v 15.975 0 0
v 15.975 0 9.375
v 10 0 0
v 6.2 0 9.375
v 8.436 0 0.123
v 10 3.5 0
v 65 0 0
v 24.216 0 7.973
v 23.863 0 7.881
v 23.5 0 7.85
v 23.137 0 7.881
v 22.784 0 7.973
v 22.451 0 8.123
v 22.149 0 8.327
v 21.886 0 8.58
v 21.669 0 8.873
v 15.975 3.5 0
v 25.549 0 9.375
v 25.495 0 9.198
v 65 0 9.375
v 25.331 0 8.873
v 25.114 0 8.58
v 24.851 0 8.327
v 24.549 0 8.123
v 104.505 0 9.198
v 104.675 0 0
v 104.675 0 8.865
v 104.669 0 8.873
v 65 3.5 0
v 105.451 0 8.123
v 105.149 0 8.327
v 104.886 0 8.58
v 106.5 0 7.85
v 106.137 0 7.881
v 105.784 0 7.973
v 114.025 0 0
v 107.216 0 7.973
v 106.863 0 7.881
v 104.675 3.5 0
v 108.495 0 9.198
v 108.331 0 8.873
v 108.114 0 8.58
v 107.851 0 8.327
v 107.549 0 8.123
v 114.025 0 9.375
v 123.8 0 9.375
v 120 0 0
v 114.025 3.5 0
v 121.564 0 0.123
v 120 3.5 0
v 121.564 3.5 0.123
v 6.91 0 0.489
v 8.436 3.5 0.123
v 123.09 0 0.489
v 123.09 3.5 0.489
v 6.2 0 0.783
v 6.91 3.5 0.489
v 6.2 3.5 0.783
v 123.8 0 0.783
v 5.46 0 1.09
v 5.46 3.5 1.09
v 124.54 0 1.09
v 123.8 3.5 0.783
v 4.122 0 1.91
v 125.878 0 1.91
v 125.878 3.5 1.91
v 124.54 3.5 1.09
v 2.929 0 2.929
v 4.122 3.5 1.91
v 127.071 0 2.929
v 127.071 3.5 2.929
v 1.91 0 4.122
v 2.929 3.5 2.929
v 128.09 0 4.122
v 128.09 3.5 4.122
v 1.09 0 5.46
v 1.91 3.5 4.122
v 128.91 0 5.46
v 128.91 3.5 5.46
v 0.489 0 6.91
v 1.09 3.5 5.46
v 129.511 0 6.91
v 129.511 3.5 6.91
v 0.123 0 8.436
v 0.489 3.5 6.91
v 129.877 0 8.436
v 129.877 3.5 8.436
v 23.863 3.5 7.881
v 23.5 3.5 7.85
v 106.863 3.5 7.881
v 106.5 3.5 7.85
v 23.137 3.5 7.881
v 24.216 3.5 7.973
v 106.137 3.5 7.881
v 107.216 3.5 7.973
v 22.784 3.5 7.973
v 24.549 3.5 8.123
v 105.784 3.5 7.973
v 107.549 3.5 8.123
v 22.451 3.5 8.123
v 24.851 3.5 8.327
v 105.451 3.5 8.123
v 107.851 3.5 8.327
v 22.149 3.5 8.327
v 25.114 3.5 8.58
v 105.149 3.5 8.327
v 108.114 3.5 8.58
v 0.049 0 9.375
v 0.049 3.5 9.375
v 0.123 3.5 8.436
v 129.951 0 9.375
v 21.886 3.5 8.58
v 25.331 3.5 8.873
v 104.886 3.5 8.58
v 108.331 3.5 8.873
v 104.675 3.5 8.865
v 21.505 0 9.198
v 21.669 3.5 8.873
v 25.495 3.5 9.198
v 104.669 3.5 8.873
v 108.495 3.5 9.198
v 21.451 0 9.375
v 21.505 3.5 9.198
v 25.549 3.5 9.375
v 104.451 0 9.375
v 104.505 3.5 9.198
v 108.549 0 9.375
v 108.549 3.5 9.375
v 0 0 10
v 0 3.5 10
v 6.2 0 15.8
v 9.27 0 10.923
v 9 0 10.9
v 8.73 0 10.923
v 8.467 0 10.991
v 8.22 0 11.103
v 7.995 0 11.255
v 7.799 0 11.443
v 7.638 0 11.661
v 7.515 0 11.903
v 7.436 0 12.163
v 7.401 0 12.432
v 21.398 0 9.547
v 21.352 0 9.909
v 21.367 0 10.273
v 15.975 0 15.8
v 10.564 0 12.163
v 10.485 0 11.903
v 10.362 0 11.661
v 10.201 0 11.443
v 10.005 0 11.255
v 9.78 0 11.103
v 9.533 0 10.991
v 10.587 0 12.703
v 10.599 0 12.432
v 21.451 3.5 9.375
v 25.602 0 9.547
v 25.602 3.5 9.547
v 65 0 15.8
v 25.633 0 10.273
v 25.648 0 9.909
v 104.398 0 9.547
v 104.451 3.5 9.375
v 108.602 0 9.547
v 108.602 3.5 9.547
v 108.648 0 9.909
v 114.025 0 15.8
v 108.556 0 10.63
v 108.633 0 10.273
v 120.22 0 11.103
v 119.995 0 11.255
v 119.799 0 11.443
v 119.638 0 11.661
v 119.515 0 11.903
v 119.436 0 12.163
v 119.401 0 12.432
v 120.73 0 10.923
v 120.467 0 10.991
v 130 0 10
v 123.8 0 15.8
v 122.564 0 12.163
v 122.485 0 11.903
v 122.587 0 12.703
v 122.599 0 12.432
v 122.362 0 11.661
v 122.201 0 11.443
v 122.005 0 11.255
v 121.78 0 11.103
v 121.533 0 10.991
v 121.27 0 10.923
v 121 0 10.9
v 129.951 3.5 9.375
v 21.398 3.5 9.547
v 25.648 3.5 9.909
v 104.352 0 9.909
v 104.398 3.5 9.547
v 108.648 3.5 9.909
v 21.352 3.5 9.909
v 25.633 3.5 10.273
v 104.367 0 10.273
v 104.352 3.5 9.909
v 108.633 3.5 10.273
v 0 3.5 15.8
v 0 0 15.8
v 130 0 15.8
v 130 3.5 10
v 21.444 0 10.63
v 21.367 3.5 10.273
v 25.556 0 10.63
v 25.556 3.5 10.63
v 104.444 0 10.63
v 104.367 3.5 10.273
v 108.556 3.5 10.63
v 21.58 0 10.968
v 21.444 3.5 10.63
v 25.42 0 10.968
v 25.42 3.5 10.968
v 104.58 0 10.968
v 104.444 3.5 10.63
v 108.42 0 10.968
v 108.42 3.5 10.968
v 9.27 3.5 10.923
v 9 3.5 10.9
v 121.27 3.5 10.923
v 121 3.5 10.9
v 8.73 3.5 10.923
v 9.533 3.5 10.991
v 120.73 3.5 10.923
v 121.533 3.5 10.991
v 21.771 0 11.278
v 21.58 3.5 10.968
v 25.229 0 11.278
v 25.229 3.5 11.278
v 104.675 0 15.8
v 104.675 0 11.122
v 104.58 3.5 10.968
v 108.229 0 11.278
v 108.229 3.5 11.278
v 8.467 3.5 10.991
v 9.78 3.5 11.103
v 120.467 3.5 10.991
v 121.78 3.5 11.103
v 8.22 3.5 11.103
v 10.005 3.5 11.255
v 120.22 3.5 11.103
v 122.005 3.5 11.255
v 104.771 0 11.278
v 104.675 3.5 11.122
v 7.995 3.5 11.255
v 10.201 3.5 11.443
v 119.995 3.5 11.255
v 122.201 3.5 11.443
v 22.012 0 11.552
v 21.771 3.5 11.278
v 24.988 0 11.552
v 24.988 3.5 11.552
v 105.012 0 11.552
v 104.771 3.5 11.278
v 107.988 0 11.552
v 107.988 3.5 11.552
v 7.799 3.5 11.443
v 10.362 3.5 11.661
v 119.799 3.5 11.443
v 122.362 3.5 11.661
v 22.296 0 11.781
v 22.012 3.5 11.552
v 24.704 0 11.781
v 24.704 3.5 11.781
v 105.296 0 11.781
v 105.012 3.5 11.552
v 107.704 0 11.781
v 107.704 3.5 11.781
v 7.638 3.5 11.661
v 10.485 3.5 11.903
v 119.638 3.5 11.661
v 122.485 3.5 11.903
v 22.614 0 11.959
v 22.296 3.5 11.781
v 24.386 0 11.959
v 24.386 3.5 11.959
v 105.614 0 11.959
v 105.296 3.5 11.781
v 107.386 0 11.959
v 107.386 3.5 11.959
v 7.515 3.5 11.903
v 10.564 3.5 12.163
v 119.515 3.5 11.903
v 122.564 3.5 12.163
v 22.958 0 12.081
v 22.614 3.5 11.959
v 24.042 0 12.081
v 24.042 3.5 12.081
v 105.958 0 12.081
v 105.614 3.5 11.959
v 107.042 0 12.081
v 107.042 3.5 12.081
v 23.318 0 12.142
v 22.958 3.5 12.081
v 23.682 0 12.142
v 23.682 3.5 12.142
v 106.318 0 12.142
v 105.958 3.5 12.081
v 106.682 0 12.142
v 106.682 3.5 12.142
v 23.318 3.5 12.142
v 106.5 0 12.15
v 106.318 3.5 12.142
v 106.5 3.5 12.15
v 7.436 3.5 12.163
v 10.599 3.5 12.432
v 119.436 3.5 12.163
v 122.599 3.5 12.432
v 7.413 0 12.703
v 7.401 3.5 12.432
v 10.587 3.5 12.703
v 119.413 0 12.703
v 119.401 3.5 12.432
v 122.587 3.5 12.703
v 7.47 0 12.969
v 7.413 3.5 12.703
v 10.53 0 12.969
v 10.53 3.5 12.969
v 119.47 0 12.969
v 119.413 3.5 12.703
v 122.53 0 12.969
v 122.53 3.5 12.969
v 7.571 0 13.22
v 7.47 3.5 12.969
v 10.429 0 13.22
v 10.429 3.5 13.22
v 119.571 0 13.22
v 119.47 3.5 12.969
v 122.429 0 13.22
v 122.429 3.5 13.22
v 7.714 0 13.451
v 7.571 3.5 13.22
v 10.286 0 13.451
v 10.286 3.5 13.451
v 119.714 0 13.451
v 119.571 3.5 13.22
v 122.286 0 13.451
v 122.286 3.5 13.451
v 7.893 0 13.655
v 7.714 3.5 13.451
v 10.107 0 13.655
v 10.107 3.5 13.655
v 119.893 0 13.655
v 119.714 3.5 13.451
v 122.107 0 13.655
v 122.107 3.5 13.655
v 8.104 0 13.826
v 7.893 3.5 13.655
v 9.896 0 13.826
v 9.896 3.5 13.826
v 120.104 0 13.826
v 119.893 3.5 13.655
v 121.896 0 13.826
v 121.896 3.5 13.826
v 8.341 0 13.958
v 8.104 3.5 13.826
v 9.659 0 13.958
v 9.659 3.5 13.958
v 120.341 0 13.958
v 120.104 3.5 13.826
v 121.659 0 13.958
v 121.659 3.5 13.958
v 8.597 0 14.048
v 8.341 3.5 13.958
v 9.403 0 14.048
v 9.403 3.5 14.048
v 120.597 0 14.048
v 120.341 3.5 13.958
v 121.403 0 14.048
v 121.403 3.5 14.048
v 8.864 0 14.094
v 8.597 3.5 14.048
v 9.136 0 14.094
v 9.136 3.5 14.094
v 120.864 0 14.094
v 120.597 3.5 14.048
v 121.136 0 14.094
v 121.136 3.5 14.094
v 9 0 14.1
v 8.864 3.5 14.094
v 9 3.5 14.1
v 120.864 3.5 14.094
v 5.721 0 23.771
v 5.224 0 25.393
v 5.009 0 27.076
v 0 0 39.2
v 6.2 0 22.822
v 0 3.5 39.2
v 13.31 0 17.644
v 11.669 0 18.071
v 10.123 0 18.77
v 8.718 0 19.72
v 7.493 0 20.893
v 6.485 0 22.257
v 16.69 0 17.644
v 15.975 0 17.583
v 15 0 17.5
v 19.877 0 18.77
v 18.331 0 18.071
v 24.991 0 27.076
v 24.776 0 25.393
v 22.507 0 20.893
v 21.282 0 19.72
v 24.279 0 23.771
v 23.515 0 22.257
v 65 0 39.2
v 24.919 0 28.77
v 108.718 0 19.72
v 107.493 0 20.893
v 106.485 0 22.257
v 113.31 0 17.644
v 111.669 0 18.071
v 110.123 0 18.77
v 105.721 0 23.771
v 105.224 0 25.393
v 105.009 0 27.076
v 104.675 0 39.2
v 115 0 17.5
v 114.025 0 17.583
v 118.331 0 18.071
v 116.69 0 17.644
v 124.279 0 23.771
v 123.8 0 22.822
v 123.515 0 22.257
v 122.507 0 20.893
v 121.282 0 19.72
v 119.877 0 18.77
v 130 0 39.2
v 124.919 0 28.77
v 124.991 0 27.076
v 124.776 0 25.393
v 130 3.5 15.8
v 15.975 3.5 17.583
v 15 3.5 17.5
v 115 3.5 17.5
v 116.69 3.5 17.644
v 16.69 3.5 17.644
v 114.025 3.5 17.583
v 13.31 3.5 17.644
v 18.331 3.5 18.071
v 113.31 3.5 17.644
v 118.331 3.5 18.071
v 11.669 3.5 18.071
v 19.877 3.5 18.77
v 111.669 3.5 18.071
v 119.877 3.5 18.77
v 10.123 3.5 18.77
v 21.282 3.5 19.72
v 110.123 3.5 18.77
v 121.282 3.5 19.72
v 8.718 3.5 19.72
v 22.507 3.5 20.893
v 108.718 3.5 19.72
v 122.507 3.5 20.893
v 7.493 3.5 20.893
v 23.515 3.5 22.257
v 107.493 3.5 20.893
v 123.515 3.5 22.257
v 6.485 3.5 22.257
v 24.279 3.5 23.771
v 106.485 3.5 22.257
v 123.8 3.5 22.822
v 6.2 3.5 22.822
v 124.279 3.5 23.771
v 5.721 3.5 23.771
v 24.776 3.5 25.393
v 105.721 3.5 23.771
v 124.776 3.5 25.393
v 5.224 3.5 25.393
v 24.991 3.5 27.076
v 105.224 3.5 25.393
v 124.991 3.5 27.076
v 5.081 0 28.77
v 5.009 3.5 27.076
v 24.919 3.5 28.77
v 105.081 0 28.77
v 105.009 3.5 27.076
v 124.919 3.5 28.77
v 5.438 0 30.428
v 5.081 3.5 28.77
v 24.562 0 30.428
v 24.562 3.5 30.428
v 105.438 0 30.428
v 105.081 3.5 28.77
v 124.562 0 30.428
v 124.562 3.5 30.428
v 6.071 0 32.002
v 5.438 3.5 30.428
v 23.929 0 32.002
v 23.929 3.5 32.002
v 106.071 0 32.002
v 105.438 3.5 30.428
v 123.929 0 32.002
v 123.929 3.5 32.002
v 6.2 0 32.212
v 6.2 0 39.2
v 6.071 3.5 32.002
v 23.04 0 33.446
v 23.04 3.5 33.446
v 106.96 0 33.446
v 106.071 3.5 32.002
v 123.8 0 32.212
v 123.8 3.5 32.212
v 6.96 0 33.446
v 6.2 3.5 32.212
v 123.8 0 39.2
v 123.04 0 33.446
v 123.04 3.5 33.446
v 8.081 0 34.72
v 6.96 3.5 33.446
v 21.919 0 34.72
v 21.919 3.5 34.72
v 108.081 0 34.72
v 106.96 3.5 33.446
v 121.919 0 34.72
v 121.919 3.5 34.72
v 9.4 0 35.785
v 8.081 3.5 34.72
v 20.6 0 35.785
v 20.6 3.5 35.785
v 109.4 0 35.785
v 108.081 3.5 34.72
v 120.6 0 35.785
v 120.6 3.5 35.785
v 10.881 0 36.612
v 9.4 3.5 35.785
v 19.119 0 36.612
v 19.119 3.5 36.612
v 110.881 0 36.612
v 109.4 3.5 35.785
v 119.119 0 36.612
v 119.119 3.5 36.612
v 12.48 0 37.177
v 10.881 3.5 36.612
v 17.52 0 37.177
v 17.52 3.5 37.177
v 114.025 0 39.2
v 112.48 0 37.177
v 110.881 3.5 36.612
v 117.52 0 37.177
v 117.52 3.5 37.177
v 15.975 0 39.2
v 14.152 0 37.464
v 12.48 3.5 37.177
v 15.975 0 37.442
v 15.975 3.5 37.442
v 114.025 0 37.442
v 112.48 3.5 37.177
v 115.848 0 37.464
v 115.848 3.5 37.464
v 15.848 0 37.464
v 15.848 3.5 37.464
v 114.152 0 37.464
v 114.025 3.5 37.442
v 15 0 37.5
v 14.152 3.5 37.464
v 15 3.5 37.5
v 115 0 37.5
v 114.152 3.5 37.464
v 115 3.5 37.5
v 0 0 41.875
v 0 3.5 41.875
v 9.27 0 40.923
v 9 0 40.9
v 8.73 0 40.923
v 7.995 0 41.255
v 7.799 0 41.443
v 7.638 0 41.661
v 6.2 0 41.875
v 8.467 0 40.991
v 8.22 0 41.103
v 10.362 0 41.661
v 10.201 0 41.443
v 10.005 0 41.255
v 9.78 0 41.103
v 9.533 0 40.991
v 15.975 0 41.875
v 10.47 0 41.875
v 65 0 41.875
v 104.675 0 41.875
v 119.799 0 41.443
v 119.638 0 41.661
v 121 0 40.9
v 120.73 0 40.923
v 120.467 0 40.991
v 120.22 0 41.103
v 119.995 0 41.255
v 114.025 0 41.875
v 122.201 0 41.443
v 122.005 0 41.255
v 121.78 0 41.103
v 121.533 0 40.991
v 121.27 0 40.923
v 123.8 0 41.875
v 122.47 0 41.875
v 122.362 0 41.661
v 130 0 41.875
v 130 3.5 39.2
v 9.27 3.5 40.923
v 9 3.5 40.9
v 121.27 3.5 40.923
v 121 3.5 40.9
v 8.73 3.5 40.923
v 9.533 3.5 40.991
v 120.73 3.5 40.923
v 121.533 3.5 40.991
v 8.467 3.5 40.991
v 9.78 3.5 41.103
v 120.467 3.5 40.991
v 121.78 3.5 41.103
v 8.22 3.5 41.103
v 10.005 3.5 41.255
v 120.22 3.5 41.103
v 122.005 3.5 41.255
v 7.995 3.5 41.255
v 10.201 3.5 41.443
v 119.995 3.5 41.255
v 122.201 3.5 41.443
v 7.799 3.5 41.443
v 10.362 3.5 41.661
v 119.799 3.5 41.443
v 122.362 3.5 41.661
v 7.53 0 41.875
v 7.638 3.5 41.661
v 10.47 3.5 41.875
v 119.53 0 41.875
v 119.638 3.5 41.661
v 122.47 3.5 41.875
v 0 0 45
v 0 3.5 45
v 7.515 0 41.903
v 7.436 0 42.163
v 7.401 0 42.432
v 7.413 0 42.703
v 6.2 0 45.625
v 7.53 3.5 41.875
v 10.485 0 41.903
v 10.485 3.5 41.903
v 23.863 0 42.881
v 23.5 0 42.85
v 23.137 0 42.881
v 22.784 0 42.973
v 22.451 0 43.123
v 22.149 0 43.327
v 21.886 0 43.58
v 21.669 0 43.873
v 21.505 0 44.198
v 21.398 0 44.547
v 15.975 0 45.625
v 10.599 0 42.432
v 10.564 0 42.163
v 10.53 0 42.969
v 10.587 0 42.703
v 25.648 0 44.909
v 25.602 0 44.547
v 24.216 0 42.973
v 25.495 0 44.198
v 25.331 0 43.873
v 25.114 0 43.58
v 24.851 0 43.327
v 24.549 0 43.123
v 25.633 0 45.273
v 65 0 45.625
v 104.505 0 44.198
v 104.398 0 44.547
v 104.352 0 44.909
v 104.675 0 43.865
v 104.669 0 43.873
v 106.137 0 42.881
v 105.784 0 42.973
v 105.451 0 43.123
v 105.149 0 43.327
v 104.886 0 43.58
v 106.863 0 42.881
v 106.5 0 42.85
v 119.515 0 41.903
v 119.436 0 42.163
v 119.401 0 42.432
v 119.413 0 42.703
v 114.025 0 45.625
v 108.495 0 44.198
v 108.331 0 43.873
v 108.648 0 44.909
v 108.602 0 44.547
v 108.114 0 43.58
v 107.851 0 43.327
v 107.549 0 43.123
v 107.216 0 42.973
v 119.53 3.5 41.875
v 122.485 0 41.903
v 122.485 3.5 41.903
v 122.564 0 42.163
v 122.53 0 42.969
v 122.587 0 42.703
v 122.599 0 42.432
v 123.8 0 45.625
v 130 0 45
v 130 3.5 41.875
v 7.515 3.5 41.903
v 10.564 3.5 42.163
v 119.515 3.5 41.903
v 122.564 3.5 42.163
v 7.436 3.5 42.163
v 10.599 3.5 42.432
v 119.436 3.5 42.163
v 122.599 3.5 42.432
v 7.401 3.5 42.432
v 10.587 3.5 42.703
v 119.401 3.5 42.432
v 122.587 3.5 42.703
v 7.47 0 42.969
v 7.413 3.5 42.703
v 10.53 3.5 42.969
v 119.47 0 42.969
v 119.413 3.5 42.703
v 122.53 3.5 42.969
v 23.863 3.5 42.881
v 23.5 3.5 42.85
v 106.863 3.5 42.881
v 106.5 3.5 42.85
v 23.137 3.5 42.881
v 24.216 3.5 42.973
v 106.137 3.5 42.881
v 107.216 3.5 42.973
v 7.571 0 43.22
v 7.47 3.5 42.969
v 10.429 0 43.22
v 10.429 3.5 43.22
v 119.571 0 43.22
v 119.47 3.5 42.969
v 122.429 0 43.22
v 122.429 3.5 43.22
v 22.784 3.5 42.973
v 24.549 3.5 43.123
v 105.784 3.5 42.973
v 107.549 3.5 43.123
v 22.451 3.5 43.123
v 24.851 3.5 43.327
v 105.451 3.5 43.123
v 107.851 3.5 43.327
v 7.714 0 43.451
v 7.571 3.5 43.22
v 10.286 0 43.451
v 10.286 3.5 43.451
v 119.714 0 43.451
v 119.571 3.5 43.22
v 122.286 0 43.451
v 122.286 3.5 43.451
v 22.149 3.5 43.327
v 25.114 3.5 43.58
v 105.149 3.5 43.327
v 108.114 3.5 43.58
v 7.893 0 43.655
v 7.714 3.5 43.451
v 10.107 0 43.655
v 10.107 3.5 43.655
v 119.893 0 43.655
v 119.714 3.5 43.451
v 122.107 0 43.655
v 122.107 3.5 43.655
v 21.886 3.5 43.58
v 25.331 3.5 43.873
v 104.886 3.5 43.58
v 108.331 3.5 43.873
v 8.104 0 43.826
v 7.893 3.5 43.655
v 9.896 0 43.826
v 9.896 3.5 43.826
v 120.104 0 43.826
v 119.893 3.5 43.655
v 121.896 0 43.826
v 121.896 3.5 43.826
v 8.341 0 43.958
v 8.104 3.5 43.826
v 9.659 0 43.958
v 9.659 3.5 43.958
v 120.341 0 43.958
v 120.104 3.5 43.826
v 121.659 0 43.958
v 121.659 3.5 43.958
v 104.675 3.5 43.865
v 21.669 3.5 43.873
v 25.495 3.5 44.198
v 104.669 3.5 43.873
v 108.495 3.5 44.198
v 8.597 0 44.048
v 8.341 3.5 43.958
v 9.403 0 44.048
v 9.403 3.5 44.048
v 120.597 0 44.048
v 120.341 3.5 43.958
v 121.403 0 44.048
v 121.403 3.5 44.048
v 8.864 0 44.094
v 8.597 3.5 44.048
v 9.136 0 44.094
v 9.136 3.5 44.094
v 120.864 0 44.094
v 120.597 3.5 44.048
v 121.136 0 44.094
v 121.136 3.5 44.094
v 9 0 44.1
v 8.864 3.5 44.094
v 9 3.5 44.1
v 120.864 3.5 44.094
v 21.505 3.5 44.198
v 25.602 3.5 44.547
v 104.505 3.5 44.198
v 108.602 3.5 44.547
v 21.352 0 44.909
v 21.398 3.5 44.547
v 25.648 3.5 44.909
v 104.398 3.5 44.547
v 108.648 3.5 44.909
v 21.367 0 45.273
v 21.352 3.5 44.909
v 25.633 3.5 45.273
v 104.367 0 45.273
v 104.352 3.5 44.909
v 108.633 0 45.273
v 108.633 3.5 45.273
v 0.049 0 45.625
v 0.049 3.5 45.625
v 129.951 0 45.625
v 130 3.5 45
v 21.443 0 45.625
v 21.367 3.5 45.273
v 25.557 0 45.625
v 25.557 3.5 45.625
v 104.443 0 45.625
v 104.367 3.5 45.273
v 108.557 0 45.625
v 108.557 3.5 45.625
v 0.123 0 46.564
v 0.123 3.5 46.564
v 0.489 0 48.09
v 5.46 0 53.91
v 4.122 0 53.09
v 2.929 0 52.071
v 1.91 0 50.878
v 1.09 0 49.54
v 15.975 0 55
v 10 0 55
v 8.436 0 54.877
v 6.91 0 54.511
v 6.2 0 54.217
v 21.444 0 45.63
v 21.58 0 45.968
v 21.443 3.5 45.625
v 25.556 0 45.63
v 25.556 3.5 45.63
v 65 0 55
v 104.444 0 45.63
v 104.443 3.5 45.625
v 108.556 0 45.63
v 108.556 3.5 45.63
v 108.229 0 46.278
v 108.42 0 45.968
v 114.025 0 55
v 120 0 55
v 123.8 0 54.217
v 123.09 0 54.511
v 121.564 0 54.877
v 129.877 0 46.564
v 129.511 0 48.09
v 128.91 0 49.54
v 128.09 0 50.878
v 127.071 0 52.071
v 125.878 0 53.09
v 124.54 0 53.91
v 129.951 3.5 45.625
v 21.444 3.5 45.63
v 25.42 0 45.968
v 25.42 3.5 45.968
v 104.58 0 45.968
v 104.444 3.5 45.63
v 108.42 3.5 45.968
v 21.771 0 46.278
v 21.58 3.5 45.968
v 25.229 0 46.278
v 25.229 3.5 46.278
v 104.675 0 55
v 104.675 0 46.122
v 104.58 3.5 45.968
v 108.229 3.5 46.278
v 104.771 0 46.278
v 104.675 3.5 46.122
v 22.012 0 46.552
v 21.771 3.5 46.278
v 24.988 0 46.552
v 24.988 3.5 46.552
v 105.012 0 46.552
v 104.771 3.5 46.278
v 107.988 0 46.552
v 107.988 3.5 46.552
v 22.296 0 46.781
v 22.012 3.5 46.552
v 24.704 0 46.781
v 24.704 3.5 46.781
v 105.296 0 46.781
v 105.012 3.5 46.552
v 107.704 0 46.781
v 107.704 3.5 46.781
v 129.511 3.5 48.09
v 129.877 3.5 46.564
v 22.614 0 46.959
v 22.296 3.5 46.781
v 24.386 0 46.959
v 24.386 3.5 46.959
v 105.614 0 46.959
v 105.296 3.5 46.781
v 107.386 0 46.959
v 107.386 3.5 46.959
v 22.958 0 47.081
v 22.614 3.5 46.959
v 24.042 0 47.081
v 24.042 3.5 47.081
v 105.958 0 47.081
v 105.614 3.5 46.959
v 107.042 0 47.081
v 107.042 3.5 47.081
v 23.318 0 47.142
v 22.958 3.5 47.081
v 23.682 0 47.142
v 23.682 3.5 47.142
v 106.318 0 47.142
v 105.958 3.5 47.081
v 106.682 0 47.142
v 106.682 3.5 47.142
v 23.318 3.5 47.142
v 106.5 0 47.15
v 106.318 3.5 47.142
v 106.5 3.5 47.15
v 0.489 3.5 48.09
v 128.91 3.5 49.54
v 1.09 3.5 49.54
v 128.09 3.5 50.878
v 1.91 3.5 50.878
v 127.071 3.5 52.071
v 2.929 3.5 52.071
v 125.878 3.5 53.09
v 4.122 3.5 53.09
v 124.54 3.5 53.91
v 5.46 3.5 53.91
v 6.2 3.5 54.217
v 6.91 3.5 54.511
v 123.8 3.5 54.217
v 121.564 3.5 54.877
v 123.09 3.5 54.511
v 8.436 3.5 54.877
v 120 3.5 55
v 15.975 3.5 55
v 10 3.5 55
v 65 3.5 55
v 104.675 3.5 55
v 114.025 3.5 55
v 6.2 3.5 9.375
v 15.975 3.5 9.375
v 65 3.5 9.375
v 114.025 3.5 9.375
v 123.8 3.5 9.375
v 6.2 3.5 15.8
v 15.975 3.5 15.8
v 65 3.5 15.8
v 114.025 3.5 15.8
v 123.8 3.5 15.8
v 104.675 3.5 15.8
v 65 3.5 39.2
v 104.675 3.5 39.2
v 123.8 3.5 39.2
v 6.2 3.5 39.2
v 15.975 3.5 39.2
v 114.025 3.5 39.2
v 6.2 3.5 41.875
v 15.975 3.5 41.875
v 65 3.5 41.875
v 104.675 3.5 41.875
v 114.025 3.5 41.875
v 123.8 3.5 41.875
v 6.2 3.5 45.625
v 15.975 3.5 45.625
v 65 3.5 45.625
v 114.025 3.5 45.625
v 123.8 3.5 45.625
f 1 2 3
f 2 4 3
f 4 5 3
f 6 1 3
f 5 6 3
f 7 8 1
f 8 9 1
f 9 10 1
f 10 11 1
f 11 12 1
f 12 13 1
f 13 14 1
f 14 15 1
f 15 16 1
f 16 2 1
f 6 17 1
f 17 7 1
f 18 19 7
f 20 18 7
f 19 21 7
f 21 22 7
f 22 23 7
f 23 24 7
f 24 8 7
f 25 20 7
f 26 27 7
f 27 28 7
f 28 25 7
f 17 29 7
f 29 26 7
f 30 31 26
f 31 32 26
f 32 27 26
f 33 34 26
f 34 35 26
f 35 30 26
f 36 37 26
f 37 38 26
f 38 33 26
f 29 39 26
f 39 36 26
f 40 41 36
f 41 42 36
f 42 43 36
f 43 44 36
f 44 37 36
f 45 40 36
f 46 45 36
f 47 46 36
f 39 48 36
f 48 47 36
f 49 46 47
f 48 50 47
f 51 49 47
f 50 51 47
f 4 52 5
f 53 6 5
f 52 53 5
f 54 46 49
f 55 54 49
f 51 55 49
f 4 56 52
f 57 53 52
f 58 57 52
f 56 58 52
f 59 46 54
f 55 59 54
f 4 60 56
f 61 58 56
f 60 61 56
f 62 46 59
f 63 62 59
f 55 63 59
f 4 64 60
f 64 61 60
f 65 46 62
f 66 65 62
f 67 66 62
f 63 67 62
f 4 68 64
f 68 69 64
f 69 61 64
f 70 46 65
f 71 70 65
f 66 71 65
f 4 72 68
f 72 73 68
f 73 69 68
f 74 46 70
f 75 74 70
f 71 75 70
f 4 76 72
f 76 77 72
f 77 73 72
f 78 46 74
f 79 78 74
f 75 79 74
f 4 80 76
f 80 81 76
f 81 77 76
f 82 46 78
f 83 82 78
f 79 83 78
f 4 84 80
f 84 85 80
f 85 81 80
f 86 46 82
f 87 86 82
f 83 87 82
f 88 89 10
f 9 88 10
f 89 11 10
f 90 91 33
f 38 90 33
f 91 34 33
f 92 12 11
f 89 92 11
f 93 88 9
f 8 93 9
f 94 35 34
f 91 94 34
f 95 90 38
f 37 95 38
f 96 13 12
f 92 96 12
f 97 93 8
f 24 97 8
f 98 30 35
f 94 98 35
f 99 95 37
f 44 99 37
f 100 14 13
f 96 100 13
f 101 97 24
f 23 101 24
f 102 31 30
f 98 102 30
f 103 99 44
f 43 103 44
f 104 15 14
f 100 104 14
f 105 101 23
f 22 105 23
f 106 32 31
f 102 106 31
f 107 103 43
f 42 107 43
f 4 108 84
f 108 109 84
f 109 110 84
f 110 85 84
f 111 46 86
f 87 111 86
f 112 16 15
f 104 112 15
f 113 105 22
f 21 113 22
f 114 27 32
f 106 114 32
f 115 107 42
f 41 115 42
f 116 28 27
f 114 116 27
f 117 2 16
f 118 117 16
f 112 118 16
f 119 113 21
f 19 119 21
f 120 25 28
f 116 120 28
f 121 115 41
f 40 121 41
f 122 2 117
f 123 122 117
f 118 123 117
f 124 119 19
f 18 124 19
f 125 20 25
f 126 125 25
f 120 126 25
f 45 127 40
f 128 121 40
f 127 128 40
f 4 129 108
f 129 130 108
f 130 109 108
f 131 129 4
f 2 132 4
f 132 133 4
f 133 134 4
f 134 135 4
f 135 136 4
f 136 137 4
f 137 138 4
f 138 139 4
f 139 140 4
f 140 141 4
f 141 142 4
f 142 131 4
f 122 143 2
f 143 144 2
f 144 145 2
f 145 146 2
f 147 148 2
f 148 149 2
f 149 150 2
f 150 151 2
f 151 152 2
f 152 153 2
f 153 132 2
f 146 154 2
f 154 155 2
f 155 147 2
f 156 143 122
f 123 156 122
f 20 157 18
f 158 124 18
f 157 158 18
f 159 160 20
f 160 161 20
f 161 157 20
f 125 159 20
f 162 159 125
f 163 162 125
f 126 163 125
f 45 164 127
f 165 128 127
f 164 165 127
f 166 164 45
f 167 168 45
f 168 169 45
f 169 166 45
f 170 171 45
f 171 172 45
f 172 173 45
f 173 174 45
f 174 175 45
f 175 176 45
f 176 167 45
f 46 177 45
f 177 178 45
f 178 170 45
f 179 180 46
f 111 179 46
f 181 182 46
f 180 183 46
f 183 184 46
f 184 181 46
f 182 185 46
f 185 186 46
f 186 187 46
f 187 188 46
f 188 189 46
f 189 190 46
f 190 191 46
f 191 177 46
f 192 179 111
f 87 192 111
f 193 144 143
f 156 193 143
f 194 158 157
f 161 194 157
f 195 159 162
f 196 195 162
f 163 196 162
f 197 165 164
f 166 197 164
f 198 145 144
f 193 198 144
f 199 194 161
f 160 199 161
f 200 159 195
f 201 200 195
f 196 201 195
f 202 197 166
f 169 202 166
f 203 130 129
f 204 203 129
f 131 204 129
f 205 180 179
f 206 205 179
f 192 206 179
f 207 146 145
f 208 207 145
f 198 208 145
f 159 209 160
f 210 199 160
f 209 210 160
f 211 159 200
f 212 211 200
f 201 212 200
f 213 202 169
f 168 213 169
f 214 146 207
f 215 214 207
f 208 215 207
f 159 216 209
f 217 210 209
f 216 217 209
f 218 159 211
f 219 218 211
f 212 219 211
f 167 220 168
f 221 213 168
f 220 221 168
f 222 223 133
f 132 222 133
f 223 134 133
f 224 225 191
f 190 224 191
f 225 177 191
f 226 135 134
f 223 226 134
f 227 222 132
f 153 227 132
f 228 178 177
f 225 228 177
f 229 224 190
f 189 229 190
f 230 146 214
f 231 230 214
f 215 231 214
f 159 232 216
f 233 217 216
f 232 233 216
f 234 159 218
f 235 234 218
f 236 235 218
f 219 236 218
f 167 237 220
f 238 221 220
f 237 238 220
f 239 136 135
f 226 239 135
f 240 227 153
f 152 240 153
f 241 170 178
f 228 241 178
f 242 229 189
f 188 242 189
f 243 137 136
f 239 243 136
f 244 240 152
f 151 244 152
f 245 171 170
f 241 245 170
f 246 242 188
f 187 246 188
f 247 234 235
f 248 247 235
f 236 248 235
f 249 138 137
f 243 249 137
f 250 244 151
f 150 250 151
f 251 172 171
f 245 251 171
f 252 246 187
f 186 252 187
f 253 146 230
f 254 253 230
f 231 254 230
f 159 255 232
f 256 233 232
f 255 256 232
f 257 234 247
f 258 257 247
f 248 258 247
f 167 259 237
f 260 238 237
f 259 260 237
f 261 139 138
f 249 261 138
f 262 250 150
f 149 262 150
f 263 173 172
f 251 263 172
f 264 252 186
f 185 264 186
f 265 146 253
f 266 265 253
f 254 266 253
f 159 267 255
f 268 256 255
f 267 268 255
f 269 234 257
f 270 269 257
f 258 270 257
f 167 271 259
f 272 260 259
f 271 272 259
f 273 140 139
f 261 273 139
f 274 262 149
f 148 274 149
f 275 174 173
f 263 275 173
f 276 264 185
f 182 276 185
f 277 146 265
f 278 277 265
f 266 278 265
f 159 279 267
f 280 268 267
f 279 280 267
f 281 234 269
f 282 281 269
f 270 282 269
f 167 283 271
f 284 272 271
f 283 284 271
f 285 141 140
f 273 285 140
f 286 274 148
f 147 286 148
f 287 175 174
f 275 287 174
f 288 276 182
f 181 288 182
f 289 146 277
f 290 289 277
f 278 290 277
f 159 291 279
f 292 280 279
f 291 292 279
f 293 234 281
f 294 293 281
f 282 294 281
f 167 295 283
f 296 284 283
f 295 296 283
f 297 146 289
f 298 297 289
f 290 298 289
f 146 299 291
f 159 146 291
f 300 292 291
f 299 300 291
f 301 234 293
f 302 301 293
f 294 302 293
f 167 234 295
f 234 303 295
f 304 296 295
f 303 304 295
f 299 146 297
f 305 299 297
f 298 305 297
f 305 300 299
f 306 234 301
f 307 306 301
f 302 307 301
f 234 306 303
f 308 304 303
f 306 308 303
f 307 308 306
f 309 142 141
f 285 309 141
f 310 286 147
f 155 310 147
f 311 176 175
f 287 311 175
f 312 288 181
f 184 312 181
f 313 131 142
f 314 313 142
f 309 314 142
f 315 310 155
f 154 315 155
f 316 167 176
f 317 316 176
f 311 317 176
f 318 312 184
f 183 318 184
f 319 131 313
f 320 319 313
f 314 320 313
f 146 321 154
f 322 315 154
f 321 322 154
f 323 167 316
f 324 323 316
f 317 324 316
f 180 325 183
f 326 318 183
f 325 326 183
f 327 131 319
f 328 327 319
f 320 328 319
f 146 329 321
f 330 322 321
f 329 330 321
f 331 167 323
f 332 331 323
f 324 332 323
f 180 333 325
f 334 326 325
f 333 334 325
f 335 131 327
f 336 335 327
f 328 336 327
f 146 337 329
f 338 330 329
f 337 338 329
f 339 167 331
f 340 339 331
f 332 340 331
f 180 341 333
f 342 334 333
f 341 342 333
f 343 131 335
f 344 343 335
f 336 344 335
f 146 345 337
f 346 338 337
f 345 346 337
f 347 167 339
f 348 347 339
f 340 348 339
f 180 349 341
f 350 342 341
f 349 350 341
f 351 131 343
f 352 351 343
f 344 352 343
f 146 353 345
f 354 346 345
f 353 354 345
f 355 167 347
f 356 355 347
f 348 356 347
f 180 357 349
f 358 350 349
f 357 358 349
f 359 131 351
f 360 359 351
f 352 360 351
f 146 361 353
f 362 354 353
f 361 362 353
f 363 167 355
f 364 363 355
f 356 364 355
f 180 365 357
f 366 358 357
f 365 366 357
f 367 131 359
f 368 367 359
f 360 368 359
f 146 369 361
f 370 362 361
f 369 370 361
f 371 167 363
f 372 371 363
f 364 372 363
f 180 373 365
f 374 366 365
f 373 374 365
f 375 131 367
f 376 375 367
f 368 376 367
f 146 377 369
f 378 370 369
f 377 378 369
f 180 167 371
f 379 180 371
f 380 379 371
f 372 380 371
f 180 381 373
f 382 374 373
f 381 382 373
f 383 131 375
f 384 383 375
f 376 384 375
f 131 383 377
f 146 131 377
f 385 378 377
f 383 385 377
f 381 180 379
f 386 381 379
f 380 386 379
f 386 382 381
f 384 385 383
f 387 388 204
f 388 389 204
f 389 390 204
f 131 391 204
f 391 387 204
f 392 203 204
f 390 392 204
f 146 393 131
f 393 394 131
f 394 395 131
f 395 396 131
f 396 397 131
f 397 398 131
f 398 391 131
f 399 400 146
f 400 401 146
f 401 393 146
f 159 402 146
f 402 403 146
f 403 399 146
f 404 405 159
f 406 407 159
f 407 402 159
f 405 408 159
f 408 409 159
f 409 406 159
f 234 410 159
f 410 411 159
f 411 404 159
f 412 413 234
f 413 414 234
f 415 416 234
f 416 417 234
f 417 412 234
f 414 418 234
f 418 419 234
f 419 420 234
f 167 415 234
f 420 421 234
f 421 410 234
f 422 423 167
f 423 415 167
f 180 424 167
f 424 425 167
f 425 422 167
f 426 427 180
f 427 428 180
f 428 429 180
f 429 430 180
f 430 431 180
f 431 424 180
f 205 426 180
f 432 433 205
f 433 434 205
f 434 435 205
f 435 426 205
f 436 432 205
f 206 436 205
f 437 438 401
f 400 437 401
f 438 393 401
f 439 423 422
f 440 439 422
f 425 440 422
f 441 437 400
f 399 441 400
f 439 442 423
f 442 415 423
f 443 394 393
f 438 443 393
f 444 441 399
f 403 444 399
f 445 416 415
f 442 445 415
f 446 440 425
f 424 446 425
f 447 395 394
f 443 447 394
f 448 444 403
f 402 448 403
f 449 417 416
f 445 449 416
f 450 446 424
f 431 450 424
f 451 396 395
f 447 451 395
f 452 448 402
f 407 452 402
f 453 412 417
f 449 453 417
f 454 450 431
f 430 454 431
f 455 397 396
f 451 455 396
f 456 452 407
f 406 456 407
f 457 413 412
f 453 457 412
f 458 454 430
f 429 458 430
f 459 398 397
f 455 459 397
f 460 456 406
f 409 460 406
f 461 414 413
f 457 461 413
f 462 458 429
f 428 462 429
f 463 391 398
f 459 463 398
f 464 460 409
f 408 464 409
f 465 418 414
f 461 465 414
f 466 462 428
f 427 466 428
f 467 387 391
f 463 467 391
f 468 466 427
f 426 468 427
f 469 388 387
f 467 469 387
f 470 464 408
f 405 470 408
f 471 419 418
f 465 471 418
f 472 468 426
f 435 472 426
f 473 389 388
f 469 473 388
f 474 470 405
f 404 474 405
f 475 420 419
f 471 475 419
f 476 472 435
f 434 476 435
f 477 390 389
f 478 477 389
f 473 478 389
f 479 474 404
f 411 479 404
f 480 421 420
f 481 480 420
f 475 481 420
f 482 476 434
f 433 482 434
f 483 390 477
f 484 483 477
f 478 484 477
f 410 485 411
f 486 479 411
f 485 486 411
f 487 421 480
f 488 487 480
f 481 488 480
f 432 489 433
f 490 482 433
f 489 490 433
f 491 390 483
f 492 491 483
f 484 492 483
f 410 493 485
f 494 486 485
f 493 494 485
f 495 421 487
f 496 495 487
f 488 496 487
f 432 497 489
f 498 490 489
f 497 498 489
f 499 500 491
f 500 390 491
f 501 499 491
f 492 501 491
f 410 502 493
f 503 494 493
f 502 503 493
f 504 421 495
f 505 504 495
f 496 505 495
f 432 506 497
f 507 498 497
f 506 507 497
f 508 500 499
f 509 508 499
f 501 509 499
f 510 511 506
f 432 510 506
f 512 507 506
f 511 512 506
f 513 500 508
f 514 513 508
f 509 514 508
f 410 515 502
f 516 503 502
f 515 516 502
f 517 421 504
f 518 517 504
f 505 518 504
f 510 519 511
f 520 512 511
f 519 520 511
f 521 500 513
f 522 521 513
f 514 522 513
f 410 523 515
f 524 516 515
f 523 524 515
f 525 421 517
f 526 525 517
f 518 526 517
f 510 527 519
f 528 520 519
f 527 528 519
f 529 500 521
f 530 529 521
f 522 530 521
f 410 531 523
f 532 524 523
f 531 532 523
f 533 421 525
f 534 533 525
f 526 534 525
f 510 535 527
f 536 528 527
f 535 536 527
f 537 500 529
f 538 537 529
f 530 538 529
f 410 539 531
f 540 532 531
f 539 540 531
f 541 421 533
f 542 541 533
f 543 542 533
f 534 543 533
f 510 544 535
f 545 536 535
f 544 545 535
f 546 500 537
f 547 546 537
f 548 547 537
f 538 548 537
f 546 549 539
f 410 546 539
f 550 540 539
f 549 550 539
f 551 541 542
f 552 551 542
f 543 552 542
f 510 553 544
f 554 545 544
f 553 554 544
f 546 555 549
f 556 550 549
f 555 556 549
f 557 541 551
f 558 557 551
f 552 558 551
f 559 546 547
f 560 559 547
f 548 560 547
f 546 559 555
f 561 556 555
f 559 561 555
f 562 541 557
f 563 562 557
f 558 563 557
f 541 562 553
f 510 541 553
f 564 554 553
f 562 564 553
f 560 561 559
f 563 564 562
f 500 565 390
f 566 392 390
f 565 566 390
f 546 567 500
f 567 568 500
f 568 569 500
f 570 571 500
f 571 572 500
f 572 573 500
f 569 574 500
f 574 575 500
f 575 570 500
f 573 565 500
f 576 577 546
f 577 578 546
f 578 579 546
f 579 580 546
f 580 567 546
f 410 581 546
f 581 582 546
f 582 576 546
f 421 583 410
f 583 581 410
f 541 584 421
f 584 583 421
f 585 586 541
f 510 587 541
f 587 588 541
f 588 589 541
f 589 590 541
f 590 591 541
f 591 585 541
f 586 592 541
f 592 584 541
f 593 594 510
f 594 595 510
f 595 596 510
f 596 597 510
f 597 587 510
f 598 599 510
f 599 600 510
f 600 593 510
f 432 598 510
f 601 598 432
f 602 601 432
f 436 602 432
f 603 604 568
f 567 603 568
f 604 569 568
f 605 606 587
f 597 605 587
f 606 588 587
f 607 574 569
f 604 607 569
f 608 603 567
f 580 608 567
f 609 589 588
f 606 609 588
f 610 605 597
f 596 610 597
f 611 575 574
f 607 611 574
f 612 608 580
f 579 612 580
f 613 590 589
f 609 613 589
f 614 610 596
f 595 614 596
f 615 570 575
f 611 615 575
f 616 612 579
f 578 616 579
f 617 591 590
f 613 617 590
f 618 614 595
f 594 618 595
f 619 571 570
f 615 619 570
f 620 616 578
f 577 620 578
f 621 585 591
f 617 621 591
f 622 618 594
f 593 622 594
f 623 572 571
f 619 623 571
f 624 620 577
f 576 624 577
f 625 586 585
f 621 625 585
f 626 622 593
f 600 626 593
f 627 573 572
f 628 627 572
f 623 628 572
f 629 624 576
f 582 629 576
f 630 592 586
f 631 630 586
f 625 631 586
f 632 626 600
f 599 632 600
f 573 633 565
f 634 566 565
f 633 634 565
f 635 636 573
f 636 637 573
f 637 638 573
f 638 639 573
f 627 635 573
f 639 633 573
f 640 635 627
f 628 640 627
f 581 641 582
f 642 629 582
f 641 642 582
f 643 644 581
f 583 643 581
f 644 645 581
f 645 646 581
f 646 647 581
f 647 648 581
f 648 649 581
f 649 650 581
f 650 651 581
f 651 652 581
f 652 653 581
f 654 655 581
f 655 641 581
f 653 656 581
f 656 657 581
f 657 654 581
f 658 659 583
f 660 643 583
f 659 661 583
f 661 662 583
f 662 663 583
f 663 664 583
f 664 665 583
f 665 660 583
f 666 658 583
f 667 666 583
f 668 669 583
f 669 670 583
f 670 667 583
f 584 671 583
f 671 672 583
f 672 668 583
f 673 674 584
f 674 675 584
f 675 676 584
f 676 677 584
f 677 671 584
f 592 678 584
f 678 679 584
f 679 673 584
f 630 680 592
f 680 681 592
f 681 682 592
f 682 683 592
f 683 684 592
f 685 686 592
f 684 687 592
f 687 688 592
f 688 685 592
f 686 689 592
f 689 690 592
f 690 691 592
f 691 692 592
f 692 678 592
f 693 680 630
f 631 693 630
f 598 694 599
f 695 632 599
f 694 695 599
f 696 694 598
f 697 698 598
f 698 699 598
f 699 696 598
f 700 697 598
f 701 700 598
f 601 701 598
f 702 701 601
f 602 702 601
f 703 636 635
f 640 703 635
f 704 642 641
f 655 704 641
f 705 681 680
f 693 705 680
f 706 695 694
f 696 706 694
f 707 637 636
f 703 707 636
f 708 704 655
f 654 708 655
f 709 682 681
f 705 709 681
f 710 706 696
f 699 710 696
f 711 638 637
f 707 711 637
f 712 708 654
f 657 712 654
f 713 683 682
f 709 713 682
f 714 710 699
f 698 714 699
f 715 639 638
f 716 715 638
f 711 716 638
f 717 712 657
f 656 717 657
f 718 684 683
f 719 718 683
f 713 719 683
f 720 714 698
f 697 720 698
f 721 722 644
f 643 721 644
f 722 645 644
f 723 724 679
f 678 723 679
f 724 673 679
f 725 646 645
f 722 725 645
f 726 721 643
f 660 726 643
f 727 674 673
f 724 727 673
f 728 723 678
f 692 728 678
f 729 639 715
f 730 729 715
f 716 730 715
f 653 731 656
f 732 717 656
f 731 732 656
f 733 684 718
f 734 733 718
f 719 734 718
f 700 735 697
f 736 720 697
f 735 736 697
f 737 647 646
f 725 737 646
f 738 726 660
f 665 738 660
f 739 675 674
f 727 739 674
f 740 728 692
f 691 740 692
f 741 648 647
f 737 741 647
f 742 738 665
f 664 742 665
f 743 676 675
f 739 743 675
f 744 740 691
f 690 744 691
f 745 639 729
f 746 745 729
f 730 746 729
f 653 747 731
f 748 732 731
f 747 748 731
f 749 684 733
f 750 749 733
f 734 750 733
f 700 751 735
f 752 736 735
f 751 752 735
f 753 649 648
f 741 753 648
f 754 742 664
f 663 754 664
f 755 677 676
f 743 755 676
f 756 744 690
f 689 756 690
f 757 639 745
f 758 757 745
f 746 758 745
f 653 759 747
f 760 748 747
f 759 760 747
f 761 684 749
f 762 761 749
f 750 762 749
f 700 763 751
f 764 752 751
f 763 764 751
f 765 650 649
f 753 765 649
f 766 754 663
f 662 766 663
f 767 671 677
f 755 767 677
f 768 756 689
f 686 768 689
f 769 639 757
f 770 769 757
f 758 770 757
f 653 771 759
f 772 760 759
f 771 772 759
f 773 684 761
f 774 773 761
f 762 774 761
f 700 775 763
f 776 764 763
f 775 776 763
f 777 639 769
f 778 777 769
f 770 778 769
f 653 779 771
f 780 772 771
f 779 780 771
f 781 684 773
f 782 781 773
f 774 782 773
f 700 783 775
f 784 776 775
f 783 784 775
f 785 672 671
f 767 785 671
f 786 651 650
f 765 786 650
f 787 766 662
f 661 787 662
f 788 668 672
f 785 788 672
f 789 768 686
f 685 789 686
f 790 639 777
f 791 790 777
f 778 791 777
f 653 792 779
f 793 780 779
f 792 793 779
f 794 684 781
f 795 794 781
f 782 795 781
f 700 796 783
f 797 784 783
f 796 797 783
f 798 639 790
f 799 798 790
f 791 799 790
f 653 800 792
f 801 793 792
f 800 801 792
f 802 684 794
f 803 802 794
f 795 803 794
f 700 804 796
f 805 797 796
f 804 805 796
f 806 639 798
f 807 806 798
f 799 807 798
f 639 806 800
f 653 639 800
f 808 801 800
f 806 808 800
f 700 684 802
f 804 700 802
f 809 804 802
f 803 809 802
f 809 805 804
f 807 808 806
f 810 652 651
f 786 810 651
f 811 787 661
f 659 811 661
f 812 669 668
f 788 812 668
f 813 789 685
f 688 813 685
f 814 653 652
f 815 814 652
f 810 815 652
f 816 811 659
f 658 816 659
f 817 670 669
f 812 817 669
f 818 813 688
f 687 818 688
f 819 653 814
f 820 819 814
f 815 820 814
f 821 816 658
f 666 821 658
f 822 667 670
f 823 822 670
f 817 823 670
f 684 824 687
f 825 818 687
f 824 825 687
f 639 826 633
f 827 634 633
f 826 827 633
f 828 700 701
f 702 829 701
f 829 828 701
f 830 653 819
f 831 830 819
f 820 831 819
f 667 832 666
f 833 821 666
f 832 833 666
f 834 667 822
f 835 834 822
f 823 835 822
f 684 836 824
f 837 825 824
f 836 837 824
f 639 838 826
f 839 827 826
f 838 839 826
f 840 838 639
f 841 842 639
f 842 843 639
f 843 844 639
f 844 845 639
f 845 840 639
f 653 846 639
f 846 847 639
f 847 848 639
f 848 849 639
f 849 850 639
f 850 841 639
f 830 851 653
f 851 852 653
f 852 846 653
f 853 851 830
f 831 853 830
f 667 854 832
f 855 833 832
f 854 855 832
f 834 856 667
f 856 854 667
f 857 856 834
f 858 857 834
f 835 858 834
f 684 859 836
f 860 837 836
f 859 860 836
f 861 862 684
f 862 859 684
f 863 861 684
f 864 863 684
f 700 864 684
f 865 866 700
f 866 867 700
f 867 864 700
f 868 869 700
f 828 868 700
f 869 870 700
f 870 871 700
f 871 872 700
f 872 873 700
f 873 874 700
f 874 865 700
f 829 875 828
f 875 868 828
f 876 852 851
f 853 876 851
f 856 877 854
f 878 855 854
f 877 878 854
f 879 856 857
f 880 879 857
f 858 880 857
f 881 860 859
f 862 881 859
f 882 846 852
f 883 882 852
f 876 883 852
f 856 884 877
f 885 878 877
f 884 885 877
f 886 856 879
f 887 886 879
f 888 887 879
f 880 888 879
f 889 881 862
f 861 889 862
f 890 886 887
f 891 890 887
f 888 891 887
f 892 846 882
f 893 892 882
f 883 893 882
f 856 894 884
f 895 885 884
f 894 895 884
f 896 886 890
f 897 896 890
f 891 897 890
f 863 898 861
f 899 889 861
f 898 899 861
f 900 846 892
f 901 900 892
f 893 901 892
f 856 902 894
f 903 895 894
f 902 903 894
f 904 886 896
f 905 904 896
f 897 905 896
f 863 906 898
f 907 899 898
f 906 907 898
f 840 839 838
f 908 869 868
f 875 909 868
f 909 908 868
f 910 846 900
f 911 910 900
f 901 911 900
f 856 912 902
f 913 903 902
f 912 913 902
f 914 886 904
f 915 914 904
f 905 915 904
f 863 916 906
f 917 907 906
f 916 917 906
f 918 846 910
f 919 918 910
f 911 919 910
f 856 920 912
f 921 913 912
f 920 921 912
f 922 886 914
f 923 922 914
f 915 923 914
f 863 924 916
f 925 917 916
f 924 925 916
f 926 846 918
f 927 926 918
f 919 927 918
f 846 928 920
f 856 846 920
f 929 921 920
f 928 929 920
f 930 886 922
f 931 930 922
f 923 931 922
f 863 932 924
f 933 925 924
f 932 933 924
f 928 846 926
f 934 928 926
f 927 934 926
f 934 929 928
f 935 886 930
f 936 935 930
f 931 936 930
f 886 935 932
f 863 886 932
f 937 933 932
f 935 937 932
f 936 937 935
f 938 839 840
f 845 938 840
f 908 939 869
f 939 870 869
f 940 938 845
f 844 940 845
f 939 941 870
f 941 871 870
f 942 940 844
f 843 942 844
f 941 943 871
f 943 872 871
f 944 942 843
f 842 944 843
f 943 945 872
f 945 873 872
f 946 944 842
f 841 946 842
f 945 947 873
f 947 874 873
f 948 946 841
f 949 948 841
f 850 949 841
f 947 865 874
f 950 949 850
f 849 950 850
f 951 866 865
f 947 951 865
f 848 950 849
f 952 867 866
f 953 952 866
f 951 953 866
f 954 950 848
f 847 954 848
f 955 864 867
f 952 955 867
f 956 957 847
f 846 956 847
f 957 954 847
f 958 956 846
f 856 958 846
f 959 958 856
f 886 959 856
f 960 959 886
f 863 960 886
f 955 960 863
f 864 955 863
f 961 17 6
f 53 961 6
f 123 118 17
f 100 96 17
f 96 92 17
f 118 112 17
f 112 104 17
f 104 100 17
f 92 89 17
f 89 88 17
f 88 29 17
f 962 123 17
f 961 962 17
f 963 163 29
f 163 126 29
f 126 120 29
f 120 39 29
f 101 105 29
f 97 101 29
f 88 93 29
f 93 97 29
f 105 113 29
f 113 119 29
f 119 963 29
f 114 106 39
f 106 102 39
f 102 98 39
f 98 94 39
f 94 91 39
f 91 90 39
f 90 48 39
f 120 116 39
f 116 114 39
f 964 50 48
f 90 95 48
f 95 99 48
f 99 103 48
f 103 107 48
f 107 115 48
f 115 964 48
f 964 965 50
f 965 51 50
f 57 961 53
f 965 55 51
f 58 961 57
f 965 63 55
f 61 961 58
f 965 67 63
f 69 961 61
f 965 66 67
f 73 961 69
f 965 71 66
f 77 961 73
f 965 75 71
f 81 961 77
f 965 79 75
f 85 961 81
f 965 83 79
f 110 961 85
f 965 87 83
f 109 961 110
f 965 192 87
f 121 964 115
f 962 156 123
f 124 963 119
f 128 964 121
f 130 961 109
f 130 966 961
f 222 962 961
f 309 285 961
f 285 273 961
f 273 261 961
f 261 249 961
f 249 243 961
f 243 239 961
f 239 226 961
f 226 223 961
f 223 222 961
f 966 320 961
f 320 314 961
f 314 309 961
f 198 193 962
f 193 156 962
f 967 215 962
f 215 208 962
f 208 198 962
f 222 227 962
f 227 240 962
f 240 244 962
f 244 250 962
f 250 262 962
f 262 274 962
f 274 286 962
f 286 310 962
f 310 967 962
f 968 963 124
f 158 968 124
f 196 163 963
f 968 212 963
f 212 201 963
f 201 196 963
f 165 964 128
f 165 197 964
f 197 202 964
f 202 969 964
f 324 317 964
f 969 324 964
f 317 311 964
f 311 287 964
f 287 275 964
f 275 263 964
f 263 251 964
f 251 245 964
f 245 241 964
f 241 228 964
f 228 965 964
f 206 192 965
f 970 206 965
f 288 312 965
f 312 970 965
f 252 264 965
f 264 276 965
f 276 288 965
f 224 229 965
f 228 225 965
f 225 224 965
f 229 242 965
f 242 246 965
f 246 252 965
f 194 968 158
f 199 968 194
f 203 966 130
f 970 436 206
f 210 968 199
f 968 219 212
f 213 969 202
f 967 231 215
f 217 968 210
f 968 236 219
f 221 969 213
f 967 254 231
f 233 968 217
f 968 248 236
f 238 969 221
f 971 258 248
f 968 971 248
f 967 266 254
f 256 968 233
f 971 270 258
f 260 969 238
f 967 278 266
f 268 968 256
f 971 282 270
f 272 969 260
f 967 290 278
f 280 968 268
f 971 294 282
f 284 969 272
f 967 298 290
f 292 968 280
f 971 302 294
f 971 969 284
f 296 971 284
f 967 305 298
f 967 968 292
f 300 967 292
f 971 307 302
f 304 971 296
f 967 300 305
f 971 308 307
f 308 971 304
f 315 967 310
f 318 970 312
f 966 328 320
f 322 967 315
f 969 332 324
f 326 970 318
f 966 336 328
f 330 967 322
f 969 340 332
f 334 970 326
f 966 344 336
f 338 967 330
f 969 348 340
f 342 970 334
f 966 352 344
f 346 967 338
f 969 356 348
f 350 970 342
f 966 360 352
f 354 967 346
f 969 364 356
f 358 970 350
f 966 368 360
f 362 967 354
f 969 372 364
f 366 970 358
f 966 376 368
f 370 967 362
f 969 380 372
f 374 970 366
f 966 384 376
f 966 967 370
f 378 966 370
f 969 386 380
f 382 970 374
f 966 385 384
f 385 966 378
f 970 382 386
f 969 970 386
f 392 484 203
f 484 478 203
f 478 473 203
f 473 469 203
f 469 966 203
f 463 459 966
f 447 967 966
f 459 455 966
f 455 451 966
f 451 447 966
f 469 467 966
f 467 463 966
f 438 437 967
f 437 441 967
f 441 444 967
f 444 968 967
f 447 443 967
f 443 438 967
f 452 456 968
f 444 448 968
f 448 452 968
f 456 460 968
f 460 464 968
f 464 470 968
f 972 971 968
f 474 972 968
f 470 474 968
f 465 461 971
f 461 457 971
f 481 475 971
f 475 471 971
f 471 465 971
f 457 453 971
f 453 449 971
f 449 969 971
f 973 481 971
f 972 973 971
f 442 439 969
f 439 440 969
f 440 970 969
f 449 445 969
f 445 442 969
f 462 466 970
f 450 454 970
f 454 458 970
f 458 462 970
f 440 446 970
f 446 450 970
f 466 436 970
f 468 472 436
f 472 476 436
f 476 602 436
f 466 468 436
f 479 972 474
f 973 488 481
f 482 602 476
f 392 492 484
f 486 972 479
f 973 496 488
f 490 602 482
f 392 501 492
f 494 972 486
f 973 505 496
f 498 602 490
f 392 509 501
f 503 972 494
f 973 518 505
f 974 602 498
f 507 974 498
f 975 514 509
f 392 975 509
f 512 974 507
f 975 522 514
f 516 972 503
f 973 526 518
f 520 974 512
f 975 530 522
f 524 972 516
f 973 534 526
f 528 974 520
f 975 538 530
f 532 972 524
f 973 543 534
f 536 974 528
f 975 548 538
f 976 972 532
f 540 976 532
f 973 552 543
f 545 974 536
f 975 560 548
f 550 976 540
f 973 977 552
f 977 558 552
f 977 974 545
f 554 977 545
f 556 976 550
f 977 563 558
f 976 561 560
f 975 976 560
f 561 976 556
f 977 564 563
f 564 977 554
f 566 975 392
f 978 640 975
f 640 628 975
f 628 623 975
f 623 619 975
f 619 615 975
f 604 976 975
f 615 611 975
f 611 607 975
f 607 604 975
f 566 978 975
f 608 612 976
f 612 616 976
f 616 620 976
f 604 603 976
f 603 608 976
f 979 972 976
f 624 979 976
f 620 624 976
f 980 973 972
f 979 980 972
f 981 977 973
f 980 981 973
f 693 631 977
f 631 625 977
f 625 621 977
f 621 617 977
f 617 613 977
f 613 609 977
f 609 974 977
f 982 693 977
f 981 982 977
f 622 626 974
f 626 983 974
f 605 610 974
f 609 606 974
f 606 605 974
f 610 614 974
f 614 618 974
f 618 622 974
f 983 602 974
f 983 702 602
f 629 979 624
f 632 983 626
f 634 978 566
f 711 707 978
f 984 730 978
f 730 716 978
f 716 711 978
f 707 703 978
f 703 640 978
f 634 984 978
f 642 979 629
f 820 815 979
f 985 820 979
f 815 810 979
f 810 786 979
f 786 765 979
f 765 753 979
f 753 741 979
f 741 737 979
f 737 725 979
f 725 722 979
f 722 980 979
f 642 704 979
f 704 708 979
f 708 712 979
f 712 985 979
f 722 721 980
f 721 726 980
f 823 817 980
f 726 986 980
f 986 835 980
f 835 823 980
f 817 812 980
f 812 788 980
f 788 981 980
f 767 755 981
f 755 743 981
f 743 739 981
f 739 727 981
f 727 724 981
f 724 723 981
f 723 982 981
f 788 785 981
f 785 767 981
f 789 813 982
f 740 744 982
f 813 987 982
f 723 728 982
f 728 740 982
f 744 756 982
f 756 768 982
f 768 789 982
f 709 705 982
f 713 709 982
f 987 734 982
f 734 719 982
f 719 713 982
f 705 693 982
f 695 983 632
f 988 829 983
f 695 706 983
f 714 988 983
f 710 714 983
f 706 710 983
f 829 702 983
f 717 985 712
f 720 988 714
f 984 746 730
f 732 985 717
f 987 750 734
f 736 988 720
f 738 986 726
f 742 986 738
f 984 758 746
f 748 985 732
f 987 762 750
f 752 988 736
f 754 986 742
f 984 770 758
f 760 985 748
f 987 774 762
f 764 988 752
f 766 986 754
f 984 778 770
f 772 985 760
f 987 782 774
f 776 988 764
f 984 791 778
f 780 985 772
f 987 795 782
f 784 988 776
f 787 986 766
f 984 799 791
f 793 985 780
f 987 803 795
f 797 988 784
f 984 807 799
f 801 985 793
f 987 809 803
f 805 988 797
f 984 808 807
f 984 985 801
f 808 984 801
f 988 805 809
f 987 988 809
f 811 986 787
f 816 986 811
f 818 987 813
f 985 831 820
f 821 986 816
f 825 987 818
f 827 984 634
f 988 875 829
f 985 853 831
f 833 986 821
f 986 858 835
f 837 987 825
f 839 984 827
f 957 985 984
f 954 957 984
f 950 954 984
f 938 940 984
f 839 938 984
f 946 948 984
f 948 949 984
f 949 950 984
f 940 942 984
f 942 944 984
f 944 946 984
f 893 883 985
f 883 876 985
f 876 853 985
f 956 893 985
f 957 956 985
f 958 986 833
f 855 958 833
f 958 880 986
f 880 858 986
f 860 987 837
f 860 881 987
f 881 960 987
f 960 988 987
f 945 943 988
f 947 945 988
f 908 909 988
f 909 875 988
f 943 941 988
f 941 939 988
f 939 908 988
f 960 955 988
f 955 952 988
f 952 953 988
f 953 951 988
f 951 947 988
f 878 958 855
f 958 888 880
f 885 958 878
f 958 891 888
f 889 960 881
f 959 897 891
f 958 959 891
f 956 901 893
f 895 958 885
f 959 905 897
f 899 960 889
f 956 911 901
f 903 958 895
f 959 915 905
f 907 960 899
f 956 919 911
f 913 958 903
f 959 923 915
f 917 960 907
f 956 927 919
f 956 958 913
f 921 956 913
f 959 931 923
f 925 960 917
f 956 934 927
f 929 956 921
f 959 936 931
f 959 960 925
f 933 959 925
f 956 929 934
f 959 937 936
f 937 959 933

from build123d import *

# Parameters (mm, degrees)
SKETCH1_W           = 130
SKETCH1_H           = 55
SKETCH1_R           = 1.6
SKETCH1_R_2         = 10
SKETCH1_R_3         = 2.15
BOSS_EXTRUDE2_DEPTH = 3.5
FILLET2_R           = 10


with BuildPart() as part:
    # Sketch1 → Boss-Extrude2 (new body)
    with BuildSketch(Plane(origin=(0, 0, 0), x_dir=(1, 0, 0), z_dir=(0, 1, 0))):
        with Locations((65, -27.5)):
            Rectangle(SKETCH1_W, SKETCH1_H)
        with Locations((9, -12.5)):
            Circle(SKETCH1_R, mode=Mode.SUBTRACT)
        with Locations((9, -42.5)):
            Circle(SKETCH1_R, mode=Mode.SUBTRACT)
        with Locations((121, -42.5)):
            Circle(SKETCH1_R, mode=Mode.SUBTRACT)
        with Locations((121, -12.5)):
            Circle(SKETCH1_R, mode=Mode.SUBTRACT)
        with Locations((15, -27.5)):
            Circle(SKETCH1_R_2, mode=Mode.SUBTRACT)
        with Locations((115, -27.5)):
            Circle(SKETCH1_R_2, mode=Mode.SUBTRACT)
        with Locations((106.5, -10)):
            Circle(SKETCH1_R_3, mode=Mode.SUBTRACT)
        with Locations((106.5, -45)):
            Circle(SKETCH1_R_3, mode=Mode.SUBTRACT)
        with Locations((23.5, -45)):
            Circle(SKETCH1_R_3, mode=Mode.SUBTRACT)
        with Locations((23.5, -10)):
            Circle(SKETCH1_R_3, mode=Mode.SUBTRACT)
    extrude(amount=BOSS_EXTRUDE2_DEPTH)

    # Fillet2
    fillet2_edges = [part.edges().sort_by_distance(p)[0] for p in [
        (0, 1.75, 0),
        (130, 1.75, 0),
        (130, 1.75, 55),
        (0, 1.75, 55),
    ]]
    fillet(fillet2_edges, radius=FILLET2_R)


solid = part.part
